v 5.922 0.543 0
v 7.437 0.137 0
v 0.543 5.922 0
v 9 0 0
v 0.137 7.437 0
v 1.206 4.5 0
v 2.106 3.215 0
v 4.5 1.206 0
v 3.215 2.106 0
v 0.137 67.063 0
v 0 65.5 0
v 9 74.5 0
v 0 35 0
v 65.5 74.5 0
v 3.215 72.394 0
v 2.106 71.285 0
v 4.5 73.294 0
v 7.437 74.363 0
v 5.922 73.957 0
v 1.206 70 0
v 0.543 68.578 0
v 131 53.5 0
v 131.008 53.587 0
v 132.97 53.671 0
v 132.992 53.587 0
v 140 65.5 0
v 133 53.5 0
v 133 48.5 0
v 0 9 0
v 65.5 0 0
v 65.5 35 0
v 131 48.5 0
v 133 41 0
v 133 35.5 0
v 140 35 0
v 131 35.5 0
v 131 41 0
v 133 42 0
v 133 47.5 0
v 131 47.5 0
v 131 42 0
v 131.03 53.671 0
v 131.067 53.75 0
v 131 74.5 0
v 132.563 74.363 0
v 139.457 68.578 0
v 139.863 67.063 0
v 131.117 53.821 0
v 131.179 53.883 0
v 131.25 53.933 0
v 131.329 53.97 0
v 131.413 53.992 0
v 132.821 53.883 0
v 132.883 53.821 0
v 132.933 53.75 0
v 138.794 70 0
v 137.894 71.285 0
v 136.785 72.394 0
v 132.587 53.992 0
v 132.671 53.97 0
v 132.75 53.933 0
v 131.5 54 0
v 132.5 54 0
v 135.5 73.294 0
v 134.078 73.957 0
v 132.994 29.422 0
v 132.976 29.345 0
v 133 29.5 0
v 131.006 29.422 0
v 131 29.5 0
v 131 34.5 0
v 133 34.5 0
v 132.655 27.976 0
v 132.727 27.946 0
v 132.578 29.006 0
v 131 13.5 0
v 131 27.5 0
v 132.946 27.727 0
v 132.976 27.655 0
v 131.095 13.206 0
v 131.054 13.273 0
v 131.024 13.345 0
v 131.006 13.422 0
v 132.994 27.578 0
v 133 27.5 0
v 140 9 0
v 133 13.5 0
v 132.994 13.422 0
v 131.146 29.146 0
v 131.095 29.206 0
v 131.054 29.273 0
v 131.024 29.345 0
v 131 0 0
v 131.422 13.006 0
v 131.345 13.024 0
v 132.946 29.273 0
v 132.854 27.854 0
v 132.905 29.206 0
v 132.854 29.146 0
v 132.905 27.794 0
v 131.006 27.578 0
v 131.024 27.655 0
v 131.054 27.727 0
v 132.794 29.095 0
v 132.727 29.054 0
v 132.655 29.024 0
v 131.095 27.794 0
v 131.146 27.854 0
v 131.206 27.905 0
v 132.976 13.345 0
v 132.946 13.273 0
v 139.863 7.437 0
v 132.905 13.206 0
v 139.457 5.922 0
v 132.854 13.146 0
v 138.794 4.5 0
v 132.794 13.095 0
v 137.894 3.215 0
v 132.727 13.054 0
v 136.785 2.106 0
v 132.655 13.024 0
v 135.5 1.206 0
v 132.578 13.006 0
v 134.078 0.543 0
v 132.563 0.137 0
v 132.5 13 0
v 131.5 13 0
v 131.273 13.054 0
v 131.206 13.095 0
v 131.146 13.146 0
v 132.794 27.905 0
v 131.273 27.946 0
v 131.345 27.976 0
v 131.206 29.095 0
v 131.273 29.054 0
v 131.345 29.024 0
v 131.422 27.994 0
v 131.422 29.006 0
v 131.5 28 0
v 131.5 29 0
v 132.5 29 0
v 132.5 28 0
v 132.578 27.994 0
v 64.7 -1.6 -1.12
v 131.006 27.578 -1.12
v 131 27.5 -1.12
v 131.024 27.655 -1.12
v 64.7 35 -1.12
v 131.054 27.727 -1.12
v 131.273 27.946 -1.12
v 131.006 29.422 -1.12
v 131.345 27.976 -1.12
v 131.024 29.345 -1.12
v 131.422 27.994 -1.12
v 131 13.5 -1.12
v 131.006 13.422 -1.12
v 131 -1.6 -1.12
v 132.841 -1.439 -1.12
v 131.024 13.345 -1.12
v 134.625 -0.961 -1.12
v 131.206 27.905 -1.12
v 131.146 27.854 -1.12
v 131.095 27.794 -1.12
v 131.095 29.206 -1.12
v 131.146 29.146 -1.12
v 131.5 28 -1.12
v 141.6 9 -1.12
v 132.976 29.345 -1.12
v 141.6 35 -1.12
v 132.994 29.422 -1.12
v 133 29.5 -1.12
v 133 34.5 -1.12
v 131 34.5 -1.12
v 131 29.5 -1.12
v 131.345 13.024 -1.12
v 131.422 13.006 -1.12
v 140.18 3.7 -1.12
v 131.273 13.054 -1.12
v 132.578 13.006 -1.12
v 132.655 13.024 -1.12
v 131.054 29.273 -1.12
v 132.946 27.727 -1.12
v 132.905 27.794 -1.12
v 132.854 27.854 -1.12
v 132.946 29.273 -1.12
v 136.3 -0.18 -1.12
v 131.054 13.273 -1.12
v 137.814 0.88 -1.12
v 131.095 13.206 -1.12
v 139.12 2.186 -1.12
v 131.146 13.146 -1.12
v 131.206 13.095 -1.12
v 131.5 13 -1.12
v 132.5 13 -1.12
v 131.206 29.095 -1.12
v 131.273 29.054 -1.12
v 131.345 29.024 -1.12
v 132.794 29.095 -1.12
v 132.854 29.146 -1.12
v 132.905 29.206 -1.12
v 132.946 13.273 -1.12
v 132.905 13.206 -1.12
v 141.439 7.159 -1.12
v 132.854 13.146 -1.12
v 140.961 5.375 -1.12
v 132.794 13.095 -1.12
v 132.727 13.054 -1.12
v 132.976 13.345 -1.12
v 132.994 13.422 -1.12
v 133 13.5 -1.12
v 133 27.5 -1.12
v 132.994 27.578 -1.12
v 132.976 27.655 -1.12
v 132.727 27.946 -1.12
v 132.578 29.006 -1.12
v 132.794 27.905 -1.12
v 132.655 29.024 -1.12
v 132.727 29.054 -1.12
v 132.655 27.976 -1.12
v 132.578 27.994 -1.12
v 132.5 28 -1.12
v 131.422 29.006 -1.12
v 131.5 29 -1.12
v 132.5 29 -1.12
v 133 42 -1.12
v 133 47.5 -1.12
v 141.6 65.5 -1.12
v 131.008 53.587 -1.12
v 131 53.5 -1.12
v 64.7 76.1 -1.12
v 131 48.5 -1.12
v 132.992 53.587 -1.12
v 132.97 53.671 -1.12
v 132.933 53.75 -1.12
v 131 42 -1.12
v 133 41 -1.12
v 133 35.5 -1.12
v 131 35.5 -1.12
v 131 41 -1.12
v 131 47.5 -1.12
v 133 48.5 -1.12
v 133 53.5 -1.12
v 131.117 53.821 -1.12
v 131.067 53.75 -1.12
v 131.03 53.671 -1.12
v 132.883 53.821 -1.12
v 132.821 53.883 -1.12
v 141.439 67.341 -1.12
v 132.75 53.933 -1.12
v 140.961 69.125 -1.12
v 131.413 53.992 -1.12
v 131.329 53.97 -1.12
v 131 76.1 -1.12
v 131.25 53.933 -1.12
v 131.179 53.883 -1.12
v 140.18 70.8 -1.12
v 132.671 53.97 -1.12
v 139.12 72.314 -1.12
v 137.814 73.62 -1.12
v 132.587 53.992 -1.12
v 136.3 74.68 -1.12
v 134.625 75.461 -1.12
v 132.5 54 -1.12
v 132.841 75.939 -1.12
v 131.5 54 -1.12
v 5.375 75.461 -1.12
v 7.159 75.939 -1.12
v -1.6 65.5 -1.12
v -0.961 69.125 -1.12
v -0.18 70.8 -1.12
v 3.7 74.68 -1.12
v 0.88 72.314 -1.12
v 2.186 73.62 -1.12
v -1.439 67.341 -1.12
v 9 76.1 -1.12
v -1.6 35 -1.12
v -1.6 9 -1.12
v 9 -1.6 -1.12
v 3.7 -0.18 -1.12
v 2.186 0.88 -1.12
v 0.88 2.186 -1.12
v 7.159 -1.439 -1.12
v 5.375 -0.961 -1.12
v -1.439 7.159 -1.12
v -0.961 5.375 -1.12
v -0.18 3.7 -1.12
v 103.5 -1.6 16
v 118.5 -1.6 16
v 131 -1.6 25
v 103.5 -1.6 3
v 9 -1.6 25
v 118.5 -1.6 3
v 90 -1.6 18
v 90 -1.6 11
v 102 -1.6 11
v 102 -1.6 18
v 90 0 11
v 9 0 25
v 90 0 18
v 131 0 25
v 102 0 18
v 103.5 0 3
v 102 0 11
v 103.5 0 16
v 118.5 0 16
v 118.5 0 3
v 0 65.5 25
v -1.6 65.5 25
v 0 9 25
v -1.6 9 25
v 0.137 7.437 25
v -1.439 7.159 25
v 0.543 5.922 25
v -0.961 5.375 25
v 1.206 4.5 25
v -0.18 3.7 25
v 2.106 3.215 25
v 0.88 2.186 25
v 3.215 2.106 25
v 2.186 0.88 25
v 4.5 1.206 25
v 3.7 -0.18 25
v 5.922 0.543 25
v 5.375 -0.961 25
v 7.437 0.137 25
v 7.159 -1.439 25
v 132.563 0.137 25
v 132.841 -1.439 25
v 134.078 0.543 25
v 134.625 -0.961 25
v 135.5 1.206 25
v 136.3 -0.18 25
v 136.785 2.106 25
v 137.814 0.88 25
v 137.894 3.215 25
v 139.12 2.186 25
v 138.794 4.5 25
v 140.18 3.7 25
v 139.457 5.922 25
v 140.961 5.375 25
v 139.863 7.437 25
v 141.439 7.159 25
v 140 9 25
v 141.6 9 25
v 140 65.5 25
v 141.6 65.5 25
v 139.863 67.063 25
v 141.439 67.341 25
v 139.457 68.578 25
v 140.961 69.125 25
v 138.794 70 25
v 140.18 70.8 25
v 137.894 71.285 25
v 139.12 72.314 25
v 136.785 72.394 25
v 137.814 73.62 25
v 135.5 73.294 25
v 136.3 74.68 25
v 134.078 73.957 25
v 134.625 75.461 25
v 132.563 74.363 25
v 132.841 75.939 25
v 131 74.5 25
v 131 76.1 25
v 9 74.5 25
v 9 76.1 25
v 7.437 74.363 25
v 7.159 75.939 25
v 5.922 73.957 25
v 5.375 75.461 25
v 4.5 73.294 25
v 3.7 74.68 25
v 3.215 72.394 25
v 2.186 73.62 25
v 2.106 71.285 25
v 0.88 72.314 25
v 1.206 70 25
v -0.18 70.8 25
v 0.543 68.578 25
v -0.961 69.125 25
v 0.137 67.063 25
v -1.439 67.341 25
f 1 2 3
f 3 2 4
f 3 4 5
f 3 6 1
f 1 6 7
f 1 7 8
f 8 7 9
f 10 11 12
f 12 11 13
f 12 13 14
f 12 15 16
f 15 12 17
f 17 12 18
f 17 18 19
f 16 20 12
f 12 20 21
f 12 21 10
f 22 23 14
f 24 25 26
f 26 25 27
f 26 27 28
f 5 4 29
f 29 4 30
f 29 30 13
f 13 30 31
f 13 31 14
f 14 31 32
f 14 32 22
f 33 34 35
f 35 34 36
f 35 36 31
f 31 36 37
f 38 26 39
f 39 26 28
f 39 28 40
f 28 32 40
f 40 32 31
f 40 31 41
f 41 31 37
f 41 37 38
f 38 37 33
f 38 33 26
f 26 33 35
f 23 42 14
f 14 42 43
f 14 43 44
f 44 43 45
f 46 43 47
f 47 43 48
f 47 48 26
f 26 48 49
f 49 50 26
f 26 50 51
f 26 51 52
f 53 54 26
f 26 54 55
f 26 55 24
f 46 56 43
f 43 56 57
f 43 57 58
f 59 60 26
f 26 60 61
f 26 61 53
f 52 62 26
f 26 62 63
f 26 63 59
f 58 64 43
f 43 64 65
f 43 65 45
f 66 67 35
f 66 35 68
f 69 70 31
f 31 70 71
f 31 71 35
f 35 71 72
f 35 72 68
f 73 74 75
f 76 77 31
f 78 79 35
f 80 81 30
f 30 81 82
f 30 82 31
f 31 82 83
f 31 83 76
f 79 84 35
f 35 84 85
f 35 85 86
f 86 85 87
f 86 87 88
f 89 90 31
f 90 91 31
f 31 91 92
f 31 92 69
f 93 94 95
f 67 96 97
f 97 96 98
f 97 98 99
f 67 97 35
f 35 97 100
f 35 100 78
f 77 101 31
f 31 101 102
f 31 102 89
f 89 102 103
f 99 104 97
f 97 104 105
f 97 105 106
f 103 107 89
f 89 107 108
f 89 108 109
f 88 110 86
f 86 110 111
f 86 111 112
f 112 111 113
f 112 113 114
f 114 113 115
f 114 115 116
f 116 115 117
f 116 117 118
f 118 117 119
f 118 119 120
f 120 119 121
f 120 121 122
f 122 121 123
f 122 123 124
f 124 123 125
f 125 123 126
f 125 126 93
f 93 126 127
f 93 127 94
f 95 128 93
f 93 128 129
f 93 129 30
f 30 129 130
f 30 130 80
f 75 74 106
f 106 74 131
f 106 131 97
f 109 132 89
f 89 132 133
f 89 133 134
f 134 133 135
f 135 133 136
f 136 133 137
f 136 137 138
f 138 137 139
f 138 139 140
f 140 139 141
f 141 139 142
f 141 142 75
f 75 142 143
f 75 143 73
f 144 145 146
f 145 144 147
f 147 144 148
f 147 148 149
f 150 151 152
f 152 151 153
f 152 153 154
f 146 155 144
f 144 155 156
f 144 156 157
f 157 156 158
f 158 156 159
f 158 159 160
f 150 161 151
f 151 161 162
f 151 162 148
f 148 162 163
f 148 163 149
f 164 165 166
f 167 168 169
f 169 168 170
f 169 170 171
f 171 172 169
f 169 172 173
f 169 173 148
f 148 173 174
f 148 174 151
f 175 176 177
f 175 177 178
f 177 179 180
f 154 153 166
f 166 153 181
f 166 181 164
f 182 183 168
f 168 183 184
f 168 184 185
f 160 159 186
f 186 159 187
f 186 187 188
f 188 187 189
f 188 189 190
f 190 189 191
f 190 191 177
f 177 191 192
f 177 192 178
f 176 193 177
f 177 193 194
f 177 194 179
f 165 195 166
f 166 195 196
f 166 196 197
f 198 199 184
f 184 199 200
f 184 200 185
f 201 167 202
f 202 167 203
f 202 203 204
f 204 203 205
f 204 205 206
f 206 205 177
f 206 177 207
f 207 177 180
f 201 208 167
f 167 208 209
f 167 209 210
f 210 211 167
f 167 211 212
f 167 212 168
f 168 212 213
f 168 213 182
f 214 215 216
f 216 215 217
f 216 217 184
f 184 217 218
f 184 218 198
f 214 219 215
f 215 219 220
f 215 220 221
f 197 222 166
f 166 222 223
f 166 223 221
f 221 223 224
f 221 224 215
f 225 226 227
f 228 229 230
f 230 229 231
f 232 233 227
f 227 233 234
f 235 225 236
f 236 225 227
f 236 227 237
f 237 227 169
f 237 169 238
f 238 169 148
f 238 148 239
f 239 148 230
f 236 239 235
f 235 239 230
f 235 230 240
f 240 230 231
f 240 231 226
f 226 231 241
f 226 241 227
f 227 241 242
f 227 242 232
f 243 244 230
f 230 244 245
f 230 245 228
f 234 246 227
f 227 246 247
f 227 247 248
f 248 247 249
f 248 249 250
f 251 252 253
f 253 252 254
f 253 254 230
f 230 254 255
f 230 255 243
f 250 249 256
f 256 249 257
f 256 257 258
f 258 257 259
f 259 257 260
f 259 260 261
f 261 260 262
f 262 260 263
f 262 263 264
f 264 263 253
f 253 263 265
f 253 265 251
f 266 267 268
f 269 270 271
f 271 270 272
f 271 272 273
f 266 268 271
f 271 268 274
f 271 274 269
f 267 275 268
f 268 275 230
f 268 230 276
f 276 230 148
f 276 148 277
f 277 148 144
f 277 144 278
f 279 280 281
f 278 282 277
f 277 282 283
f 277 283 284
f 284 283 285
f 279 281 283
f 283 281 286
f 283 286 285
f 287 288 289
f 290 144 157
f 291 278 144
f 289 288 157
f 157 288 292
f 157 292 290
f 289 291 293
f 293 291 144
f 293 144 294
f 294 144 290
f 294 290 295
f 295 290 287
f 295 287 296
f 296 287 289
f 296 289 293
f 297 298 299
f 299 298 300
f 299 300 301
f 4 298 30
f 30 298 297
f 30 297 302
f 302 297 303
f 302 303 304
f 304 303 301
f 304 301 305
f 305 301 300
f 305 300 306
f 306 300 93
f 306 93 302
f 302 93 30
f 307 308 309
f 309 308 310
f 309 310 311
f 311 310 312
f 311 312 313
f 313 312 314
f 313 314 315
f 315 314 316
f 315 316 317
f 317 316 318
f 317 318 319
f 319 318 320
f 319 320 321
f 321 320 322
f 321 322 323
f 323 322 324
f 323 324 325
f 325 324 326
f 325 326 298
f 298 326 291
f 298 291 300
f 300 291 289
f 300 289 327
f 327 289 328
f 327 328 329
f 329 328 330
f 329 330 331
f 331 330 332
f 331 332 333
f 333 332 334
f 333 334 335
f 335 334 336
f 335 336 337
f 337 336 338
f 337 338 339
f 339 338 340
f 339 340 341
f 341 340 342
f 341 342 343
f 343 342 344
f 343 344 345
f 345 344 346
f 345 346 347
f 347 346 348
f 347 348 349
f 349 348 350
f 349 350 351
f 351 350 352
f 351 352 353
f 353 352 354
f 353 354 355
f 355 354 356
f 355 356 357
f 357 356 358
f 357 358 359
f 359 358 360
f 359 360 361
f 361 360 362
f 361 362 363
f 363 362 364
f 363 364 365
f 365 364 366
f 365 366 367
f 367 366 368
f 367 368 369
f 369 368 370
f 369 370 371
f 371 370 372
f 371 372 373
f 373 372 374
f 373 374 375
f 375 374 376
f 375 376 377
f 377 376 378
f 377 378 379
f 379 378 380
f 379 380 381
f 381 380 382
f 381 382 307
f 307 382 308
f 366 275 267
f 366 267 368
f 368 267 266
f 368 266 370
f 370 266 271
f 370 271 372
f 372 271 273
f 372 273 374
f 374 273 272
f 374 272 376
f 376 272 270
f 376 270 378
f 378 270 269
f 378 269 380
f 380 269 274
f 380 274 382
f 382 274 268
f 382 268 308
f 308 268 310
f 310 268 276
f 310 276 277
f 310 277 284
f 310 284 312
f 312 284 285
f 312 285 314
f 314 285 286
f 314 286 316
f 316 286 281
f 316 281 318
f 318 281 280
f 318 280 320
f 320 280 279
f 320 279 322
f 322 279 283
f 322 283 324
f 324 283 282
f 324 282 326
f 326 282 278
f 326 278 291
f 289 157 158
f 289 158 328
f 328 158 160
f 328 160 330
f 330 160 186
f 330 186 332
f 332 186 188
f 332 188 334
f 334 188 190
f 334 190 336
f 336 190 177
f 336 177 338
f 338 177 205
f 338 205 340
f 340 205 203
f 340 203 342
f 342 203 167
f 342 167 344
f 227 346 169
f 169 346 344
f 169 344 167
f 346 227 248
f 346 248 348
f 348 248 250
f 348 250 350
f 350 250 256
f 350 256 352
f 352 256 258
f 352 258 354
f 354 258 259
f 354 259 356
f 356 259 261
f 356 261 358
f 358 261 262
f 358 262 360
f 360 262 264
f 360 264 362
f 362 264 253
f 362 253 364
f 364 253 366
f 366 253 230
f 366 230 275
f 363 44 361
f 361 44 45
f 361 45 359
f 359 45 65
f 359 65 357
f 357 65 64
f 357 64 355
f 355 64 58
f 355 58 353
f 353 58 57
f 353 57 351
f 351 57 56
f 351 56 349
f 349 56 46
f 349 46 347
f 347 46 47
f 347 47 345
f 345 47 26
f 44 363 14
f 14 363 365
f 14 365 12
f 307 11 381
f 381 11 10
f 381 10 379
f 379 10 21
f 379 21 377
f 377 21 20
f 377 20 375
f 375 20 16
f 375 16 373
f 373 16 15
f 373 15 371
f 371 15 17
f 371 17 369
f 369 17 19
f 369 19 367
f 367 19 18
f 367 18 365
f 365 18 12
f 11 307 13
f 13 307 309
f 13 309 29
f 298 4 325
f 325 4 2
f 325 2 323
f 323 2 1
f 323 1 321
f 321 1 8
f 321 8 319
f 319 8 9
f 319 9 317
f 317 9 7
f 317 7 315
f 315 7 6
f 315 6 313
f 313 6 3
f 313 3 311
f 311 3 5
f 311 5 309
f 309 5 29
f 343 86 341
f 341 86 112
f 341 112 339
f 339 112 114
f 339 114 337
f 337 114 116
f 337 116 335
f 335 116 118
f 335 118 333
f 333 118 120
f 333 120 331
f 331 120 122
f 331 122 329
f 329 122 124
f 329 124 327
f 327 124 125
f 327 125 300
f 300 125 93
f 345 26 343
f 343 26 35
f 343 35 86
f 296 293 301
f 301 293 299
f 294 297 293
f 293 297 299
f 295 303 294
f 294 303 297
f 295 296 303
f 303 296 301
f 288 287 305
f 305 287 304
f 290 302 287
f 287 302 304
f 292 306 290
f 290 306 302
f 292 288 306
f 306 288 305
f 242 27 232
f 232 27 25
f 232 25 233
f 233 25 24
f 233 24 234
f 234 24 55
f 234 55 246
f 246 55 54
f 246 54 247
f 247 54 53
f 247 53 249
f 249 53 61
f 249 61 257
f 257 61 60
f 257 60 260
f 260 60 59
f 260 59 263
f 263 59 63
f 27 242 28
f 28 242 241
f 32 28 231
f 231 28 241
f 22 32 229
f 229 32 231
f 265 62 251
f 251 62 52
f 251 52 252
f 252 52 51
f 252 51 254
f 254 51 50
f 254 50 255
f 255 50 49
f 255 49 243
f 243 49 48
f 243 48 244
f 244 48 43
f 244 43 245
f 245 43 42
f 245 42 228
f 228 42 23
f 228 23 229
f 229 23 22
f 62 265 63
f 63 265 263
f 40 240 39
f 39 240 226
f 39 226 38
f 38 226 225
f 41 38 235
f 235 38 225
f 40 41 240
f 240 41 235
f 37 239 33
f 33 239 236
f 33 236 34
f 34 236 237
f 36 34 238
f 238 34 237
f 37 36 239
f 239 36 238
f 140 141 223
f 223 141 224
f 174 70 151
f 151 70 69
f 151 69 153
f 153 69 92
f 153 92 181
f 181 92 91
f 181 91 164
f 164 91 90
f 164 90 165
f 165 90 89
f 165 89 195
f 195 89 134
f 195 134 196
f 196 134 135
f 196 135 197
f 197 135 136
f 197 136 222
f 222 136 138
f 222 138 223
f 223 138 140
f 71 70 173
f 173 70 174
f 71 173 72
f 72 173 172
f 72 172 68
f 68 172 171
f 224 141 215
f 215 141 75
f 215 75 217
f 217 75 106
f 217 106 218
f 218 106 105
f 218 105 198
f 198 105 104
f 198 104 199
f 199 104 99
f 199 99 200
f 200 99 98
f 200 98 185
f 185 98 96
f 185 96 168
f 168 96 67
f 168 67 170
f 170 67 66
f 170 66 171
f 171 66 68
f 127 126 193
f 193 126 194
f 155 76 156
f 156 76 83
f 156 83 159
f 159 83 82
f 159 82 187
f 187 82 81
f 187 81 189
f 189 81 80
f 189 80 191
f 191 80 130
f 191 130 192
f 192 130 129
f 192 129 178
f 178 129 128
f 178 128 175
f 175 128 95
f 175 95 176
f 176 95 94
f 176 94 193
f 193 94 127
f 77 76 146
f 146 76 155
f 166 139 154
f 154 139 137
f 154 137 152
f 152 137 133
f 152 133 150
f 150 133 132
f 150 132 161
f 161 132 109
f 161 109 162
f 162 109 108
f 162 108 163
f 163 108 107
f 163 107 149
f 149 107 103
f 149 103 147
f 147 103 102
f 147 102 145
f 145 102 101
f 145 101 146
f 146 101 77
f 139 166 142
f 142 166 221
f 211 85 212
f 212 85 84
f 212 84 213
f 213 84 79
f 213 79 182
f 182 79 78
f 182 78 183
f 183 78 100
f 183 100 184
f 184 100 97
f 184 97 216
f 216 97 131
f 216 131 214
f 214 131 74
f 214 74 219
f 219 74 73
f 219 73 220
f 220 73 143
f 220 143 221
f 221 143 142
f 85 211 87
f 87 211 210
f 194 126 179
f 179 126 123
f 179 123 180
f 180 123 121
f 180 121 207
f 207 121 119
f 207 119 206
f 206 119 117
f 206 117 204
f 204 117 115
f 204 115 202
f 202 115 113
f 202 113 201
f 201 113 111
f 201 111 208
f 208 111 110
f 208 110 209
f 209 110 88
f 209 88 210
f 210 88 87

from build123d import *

# Parameters (mm, degrees)
PARED_DEPTH           = 25
CONECTORES_REACH      = 165.441
CROQUIS2_W            = 15
CROQUIS2_H            = 13
CROQUIS2_W_2          = 12
CROQUIS2_H_2          = 7
BASE_START            = -1.12
BASE_FRENTE_DEPTH     = 1.12
CORTAR_EXTRUIR2_REACH = 164.686
CROQUIS3_W            = 2
CROQUIS3_H            = 5.5


with BuildPart() as part:
    # Croquis1 → pared (new body)
    with BuildSketch(Plane.XY):
        with BuildLine():
            Line((9, 76.1), (131, 76.1))
            ThreePointArc((131, 76.1), (138.495331881, 72.995331881), (141.6, 65.5))
            Line((141.6, 65.5), (141.6, 9))
            ThreePointArc((141.6, 9), (138.495331881, 1.504668119), (131, -1.6))
            Line((131, -1.6), (9, -1.6))
            ThreePointArc((9, -1.6), (1.504668119, 1.504668119), (-1.6, 9))
            Line((-1.6, 9), (-1.6, 65.5))
            ThreePointArc((-1.6, 65.5), (1.504668119, 72.995331881), (9, 76.1))
        make_face()
        with BuildLine():
            Line((9, 0), (131, 0))
            ThreePointArc((131, 0), (137.363961031, 2.636038969), (140, 9))
            Line((140, 9), (140, 65.5))
            ThreePointArc((140, 65.5), (137.363961031, 71.863961031), (131, 74.5))
            Line((131, 74.5), (9, 74.5))
            ThreePointArc((9, 74.5), (2.636038969, 71.863961031), (0, 65.5))
            Line((0, 65.5), (0, 9))
            ThreePointArc((0, 9), (2.636038969, 2.636038969), (9, 0))
        make_face(mode=Mode.SUBTRACT)
    extrude(amount=PARED_DEPTH)

    # Croquis2 → conectores (cut, up to next)
    with BuildSketch(Plane.XZ.offset(1.6), mode=Mode.PRIVATE) as conectores_sk1:
        with Locations((111, 9.5)):
            Rectangle(CROQUIS2_W, CROQUIS2_H)
    conectores_tool1 = extrude(conectores_sk1.sketch, amount=-CONECTORES_REACH, mode=Mode.PRIVATE) & part.part
    # Croquis2 → conectores (cut, up to next)
    with BuildSketch(Plane.XZ.offset(1.6), mode=Mode.PRIVATE) as conectores_sk2:
        with Locations((96, 14.5)):
            Rectangle(CROQUIS2_W_2, CROQUIS2_H_2)
    conectores_tool2 = extrude(conectores_sk2.sketch, amount=-CONECTORES_REACH, mode=Mode.PRIVATE) & part.part
    add(conectores_tool1.solids().sort_by_distance((111, -1.6, 9.5))[0], mode=Mode.SUBTRACT)
    add(conectores_tool2.solids().sort_by_distance((96, -1.6, 14.5))[0], mode=Mode.SUBTRACT)

    # Croquis1<2> → base frente (add)
    with BuildSketch(Plane.XY.offset(BASE_START)):
        with BuildLine():
            Line((9, 76.1), (131, 76.1))
            ThreePointArc((131, 76.1), (138.495331881, 72.995331881), (141.6, 65.5))
            Line((141.6, 65.5), (141.6, 9))
            ThreePointArc((141.6, 9), (138.495331881, 1.504668119), (131, -1.6))
            Line((131, -1.6), (9, -1.6))
            ThreePointArc((9, -1.6), (1.504668119, 1.504668119), (-1.6, 9))
            Line((-1.6, 9), (-1.6, 65.5))
            ThreePointArc((-1.6, 65.5), (1.504668119, 72.995331881), (9, 76.1))
        make_face()
    extrude(amount=BASE_FRENTE_DEPTH)

    # Croquis3 → Cortar-Extruir2 (cut, up to next)
    with BuildSketch(Plane.XY, mode=Mode.PRIVATE) as cortar_extruir2_sk1:
        with Locations((132, 38.25)):
            Rectangle(CROQUIS3_W, CROQUIS3_H)
    cortar_extruir2_tool1 = extrude(cortar_extruir2_sk1.sketch, amount=-CORTAR_EXTRUIR2_REACH, mode=Mode.PRIVATE) & part.part
    # Croquis3 → Cortar-Extruir2 (cut, up to next)
    with BuildSketch(Plane.XY, mode=Mode.PRIVATE) as cortar_extruir2_sk2:
        with BuildLine():
            Line((133, 34.5), (131, 34.5))
            Line((131, 34.5), (131, 29.5))
            ThreePointArc((131, 29.5), (131.146446609, 29.146446609), (131.5, 29))
            Line((131.5, 29), (132.5, 29))
            ThreePointArc((132.5, 29), (132.853553391, 29.146446609), (133, 29.5))
            Line((133, 29.5), (133, 34.5))
        make_face()
    cortar_extruir2_tool2 = extrude(cortar_extruir2_sk2.sketch, amount=-CORTAR_EXTRUIR2_REACH, mode=Mode.PRIVATE) & part.part
    # Croquis3 → Cortar-Extruir2 (cut, up to next)
    with BuildSketch(Plane.XY, mode=Mode.PRIVATE) as cortar_extruir2_sk3:
        with Locations((132, 44.75)):
            Rectangle(CROQUIS3_W, CROQUIS3_H)
    cortar_extruir2_tool3 = extrude(cortar_extruir2_sk3.sketch, amount=-CORTAR_EXTRUIR2_REACH, mode=Mode.PRIVATE) & part.part
    # Croquis3 → Cortar-Extruir2 (cut, up to next)
    with BuildSketch(Plane.XY, mode=Mode.PRIVATE) as cortar_extruir2_sk4:
        with BuildLine():
            Line((131, 53.5), (131, 48.5))
            Line((131, 48.5), (133, 48.5))
            Line((133, 48.5), (133, 53.5))
            ThreePointArc((133, 53.5), (132.853553391, 53.853553391), (132.5, 54))
            Line((132.5, 54), (131.5, 54))
            ThreePointArc((131.5, 54), (131.146446609, 53.853553391), (131, 53.5))
        make_face()
    cortar_extruir2_tool4 = extrude(cortar_extruir2_sk4.sketch, amount=-CORTAR_EXTRUIR2_REACH, mode=Mode.PRIVATE) & part.part
    # Croquis3 → Cortar-Extruir2 (cut, up to next)
    with BuildSketch(Plane.XY, mode=Mode.PRIVATE) as cortar_extruir2_sk5:
        with BuildLine():
            Line((132.5, 28), (131.5, 28))
            ThreePointArc((131.5, 28), (131.146446609, 27.853553391), (131, 27.5))
            Line((131, 27.5), (131, 13.5))
            ThreePointArc((131, 13.5), (131.146446609, 13.146446609), (131.5, 13))
            Line((131.5, 13), (132.5, 13))
            ThreePointArc((132.5, 13), (132.853553391, 13.146446609), (133, 13.5))
            Line((133, 13.5), (133, 27.5))
            ThreePointArc((133, 27.5), (132.853553391, 27.853553391), (132.5, 28))
        make_face()
    cortar_extruir2_tool5 = extrude(cortar_extruir2_sk5.sketch, amount=-CORTAR_EXTRUIR2_REACH, mode=Mode.PRIVATE) & part.part
    add(cortar_extruir2_tool1.solids().sort_by_distance((132, 38.25, 0))[0], mode=Mode.SUBTRACT)
    add(cortar_extruir2_tool2.solids().sort_by_distance((132, 31.775989, 0))[0], mode=Mode.SUBTRACT)
    add(cortar_extruir2_tool3.solids().sort_by_distance((132, 44.75, 0))[0], mode=Mode.SUBTRACT)
    add(cortar_extruir2_tool4.solids().sort_by_distance((132, 51.224011, 0))[0], mode=Mode.SUBTRACT)
    add(cortar_extruir2_tool5.solids().sort_by_distance((132, 20.5, 0))[0], mode=Mode.SUBTRACT)


solid = part.part
